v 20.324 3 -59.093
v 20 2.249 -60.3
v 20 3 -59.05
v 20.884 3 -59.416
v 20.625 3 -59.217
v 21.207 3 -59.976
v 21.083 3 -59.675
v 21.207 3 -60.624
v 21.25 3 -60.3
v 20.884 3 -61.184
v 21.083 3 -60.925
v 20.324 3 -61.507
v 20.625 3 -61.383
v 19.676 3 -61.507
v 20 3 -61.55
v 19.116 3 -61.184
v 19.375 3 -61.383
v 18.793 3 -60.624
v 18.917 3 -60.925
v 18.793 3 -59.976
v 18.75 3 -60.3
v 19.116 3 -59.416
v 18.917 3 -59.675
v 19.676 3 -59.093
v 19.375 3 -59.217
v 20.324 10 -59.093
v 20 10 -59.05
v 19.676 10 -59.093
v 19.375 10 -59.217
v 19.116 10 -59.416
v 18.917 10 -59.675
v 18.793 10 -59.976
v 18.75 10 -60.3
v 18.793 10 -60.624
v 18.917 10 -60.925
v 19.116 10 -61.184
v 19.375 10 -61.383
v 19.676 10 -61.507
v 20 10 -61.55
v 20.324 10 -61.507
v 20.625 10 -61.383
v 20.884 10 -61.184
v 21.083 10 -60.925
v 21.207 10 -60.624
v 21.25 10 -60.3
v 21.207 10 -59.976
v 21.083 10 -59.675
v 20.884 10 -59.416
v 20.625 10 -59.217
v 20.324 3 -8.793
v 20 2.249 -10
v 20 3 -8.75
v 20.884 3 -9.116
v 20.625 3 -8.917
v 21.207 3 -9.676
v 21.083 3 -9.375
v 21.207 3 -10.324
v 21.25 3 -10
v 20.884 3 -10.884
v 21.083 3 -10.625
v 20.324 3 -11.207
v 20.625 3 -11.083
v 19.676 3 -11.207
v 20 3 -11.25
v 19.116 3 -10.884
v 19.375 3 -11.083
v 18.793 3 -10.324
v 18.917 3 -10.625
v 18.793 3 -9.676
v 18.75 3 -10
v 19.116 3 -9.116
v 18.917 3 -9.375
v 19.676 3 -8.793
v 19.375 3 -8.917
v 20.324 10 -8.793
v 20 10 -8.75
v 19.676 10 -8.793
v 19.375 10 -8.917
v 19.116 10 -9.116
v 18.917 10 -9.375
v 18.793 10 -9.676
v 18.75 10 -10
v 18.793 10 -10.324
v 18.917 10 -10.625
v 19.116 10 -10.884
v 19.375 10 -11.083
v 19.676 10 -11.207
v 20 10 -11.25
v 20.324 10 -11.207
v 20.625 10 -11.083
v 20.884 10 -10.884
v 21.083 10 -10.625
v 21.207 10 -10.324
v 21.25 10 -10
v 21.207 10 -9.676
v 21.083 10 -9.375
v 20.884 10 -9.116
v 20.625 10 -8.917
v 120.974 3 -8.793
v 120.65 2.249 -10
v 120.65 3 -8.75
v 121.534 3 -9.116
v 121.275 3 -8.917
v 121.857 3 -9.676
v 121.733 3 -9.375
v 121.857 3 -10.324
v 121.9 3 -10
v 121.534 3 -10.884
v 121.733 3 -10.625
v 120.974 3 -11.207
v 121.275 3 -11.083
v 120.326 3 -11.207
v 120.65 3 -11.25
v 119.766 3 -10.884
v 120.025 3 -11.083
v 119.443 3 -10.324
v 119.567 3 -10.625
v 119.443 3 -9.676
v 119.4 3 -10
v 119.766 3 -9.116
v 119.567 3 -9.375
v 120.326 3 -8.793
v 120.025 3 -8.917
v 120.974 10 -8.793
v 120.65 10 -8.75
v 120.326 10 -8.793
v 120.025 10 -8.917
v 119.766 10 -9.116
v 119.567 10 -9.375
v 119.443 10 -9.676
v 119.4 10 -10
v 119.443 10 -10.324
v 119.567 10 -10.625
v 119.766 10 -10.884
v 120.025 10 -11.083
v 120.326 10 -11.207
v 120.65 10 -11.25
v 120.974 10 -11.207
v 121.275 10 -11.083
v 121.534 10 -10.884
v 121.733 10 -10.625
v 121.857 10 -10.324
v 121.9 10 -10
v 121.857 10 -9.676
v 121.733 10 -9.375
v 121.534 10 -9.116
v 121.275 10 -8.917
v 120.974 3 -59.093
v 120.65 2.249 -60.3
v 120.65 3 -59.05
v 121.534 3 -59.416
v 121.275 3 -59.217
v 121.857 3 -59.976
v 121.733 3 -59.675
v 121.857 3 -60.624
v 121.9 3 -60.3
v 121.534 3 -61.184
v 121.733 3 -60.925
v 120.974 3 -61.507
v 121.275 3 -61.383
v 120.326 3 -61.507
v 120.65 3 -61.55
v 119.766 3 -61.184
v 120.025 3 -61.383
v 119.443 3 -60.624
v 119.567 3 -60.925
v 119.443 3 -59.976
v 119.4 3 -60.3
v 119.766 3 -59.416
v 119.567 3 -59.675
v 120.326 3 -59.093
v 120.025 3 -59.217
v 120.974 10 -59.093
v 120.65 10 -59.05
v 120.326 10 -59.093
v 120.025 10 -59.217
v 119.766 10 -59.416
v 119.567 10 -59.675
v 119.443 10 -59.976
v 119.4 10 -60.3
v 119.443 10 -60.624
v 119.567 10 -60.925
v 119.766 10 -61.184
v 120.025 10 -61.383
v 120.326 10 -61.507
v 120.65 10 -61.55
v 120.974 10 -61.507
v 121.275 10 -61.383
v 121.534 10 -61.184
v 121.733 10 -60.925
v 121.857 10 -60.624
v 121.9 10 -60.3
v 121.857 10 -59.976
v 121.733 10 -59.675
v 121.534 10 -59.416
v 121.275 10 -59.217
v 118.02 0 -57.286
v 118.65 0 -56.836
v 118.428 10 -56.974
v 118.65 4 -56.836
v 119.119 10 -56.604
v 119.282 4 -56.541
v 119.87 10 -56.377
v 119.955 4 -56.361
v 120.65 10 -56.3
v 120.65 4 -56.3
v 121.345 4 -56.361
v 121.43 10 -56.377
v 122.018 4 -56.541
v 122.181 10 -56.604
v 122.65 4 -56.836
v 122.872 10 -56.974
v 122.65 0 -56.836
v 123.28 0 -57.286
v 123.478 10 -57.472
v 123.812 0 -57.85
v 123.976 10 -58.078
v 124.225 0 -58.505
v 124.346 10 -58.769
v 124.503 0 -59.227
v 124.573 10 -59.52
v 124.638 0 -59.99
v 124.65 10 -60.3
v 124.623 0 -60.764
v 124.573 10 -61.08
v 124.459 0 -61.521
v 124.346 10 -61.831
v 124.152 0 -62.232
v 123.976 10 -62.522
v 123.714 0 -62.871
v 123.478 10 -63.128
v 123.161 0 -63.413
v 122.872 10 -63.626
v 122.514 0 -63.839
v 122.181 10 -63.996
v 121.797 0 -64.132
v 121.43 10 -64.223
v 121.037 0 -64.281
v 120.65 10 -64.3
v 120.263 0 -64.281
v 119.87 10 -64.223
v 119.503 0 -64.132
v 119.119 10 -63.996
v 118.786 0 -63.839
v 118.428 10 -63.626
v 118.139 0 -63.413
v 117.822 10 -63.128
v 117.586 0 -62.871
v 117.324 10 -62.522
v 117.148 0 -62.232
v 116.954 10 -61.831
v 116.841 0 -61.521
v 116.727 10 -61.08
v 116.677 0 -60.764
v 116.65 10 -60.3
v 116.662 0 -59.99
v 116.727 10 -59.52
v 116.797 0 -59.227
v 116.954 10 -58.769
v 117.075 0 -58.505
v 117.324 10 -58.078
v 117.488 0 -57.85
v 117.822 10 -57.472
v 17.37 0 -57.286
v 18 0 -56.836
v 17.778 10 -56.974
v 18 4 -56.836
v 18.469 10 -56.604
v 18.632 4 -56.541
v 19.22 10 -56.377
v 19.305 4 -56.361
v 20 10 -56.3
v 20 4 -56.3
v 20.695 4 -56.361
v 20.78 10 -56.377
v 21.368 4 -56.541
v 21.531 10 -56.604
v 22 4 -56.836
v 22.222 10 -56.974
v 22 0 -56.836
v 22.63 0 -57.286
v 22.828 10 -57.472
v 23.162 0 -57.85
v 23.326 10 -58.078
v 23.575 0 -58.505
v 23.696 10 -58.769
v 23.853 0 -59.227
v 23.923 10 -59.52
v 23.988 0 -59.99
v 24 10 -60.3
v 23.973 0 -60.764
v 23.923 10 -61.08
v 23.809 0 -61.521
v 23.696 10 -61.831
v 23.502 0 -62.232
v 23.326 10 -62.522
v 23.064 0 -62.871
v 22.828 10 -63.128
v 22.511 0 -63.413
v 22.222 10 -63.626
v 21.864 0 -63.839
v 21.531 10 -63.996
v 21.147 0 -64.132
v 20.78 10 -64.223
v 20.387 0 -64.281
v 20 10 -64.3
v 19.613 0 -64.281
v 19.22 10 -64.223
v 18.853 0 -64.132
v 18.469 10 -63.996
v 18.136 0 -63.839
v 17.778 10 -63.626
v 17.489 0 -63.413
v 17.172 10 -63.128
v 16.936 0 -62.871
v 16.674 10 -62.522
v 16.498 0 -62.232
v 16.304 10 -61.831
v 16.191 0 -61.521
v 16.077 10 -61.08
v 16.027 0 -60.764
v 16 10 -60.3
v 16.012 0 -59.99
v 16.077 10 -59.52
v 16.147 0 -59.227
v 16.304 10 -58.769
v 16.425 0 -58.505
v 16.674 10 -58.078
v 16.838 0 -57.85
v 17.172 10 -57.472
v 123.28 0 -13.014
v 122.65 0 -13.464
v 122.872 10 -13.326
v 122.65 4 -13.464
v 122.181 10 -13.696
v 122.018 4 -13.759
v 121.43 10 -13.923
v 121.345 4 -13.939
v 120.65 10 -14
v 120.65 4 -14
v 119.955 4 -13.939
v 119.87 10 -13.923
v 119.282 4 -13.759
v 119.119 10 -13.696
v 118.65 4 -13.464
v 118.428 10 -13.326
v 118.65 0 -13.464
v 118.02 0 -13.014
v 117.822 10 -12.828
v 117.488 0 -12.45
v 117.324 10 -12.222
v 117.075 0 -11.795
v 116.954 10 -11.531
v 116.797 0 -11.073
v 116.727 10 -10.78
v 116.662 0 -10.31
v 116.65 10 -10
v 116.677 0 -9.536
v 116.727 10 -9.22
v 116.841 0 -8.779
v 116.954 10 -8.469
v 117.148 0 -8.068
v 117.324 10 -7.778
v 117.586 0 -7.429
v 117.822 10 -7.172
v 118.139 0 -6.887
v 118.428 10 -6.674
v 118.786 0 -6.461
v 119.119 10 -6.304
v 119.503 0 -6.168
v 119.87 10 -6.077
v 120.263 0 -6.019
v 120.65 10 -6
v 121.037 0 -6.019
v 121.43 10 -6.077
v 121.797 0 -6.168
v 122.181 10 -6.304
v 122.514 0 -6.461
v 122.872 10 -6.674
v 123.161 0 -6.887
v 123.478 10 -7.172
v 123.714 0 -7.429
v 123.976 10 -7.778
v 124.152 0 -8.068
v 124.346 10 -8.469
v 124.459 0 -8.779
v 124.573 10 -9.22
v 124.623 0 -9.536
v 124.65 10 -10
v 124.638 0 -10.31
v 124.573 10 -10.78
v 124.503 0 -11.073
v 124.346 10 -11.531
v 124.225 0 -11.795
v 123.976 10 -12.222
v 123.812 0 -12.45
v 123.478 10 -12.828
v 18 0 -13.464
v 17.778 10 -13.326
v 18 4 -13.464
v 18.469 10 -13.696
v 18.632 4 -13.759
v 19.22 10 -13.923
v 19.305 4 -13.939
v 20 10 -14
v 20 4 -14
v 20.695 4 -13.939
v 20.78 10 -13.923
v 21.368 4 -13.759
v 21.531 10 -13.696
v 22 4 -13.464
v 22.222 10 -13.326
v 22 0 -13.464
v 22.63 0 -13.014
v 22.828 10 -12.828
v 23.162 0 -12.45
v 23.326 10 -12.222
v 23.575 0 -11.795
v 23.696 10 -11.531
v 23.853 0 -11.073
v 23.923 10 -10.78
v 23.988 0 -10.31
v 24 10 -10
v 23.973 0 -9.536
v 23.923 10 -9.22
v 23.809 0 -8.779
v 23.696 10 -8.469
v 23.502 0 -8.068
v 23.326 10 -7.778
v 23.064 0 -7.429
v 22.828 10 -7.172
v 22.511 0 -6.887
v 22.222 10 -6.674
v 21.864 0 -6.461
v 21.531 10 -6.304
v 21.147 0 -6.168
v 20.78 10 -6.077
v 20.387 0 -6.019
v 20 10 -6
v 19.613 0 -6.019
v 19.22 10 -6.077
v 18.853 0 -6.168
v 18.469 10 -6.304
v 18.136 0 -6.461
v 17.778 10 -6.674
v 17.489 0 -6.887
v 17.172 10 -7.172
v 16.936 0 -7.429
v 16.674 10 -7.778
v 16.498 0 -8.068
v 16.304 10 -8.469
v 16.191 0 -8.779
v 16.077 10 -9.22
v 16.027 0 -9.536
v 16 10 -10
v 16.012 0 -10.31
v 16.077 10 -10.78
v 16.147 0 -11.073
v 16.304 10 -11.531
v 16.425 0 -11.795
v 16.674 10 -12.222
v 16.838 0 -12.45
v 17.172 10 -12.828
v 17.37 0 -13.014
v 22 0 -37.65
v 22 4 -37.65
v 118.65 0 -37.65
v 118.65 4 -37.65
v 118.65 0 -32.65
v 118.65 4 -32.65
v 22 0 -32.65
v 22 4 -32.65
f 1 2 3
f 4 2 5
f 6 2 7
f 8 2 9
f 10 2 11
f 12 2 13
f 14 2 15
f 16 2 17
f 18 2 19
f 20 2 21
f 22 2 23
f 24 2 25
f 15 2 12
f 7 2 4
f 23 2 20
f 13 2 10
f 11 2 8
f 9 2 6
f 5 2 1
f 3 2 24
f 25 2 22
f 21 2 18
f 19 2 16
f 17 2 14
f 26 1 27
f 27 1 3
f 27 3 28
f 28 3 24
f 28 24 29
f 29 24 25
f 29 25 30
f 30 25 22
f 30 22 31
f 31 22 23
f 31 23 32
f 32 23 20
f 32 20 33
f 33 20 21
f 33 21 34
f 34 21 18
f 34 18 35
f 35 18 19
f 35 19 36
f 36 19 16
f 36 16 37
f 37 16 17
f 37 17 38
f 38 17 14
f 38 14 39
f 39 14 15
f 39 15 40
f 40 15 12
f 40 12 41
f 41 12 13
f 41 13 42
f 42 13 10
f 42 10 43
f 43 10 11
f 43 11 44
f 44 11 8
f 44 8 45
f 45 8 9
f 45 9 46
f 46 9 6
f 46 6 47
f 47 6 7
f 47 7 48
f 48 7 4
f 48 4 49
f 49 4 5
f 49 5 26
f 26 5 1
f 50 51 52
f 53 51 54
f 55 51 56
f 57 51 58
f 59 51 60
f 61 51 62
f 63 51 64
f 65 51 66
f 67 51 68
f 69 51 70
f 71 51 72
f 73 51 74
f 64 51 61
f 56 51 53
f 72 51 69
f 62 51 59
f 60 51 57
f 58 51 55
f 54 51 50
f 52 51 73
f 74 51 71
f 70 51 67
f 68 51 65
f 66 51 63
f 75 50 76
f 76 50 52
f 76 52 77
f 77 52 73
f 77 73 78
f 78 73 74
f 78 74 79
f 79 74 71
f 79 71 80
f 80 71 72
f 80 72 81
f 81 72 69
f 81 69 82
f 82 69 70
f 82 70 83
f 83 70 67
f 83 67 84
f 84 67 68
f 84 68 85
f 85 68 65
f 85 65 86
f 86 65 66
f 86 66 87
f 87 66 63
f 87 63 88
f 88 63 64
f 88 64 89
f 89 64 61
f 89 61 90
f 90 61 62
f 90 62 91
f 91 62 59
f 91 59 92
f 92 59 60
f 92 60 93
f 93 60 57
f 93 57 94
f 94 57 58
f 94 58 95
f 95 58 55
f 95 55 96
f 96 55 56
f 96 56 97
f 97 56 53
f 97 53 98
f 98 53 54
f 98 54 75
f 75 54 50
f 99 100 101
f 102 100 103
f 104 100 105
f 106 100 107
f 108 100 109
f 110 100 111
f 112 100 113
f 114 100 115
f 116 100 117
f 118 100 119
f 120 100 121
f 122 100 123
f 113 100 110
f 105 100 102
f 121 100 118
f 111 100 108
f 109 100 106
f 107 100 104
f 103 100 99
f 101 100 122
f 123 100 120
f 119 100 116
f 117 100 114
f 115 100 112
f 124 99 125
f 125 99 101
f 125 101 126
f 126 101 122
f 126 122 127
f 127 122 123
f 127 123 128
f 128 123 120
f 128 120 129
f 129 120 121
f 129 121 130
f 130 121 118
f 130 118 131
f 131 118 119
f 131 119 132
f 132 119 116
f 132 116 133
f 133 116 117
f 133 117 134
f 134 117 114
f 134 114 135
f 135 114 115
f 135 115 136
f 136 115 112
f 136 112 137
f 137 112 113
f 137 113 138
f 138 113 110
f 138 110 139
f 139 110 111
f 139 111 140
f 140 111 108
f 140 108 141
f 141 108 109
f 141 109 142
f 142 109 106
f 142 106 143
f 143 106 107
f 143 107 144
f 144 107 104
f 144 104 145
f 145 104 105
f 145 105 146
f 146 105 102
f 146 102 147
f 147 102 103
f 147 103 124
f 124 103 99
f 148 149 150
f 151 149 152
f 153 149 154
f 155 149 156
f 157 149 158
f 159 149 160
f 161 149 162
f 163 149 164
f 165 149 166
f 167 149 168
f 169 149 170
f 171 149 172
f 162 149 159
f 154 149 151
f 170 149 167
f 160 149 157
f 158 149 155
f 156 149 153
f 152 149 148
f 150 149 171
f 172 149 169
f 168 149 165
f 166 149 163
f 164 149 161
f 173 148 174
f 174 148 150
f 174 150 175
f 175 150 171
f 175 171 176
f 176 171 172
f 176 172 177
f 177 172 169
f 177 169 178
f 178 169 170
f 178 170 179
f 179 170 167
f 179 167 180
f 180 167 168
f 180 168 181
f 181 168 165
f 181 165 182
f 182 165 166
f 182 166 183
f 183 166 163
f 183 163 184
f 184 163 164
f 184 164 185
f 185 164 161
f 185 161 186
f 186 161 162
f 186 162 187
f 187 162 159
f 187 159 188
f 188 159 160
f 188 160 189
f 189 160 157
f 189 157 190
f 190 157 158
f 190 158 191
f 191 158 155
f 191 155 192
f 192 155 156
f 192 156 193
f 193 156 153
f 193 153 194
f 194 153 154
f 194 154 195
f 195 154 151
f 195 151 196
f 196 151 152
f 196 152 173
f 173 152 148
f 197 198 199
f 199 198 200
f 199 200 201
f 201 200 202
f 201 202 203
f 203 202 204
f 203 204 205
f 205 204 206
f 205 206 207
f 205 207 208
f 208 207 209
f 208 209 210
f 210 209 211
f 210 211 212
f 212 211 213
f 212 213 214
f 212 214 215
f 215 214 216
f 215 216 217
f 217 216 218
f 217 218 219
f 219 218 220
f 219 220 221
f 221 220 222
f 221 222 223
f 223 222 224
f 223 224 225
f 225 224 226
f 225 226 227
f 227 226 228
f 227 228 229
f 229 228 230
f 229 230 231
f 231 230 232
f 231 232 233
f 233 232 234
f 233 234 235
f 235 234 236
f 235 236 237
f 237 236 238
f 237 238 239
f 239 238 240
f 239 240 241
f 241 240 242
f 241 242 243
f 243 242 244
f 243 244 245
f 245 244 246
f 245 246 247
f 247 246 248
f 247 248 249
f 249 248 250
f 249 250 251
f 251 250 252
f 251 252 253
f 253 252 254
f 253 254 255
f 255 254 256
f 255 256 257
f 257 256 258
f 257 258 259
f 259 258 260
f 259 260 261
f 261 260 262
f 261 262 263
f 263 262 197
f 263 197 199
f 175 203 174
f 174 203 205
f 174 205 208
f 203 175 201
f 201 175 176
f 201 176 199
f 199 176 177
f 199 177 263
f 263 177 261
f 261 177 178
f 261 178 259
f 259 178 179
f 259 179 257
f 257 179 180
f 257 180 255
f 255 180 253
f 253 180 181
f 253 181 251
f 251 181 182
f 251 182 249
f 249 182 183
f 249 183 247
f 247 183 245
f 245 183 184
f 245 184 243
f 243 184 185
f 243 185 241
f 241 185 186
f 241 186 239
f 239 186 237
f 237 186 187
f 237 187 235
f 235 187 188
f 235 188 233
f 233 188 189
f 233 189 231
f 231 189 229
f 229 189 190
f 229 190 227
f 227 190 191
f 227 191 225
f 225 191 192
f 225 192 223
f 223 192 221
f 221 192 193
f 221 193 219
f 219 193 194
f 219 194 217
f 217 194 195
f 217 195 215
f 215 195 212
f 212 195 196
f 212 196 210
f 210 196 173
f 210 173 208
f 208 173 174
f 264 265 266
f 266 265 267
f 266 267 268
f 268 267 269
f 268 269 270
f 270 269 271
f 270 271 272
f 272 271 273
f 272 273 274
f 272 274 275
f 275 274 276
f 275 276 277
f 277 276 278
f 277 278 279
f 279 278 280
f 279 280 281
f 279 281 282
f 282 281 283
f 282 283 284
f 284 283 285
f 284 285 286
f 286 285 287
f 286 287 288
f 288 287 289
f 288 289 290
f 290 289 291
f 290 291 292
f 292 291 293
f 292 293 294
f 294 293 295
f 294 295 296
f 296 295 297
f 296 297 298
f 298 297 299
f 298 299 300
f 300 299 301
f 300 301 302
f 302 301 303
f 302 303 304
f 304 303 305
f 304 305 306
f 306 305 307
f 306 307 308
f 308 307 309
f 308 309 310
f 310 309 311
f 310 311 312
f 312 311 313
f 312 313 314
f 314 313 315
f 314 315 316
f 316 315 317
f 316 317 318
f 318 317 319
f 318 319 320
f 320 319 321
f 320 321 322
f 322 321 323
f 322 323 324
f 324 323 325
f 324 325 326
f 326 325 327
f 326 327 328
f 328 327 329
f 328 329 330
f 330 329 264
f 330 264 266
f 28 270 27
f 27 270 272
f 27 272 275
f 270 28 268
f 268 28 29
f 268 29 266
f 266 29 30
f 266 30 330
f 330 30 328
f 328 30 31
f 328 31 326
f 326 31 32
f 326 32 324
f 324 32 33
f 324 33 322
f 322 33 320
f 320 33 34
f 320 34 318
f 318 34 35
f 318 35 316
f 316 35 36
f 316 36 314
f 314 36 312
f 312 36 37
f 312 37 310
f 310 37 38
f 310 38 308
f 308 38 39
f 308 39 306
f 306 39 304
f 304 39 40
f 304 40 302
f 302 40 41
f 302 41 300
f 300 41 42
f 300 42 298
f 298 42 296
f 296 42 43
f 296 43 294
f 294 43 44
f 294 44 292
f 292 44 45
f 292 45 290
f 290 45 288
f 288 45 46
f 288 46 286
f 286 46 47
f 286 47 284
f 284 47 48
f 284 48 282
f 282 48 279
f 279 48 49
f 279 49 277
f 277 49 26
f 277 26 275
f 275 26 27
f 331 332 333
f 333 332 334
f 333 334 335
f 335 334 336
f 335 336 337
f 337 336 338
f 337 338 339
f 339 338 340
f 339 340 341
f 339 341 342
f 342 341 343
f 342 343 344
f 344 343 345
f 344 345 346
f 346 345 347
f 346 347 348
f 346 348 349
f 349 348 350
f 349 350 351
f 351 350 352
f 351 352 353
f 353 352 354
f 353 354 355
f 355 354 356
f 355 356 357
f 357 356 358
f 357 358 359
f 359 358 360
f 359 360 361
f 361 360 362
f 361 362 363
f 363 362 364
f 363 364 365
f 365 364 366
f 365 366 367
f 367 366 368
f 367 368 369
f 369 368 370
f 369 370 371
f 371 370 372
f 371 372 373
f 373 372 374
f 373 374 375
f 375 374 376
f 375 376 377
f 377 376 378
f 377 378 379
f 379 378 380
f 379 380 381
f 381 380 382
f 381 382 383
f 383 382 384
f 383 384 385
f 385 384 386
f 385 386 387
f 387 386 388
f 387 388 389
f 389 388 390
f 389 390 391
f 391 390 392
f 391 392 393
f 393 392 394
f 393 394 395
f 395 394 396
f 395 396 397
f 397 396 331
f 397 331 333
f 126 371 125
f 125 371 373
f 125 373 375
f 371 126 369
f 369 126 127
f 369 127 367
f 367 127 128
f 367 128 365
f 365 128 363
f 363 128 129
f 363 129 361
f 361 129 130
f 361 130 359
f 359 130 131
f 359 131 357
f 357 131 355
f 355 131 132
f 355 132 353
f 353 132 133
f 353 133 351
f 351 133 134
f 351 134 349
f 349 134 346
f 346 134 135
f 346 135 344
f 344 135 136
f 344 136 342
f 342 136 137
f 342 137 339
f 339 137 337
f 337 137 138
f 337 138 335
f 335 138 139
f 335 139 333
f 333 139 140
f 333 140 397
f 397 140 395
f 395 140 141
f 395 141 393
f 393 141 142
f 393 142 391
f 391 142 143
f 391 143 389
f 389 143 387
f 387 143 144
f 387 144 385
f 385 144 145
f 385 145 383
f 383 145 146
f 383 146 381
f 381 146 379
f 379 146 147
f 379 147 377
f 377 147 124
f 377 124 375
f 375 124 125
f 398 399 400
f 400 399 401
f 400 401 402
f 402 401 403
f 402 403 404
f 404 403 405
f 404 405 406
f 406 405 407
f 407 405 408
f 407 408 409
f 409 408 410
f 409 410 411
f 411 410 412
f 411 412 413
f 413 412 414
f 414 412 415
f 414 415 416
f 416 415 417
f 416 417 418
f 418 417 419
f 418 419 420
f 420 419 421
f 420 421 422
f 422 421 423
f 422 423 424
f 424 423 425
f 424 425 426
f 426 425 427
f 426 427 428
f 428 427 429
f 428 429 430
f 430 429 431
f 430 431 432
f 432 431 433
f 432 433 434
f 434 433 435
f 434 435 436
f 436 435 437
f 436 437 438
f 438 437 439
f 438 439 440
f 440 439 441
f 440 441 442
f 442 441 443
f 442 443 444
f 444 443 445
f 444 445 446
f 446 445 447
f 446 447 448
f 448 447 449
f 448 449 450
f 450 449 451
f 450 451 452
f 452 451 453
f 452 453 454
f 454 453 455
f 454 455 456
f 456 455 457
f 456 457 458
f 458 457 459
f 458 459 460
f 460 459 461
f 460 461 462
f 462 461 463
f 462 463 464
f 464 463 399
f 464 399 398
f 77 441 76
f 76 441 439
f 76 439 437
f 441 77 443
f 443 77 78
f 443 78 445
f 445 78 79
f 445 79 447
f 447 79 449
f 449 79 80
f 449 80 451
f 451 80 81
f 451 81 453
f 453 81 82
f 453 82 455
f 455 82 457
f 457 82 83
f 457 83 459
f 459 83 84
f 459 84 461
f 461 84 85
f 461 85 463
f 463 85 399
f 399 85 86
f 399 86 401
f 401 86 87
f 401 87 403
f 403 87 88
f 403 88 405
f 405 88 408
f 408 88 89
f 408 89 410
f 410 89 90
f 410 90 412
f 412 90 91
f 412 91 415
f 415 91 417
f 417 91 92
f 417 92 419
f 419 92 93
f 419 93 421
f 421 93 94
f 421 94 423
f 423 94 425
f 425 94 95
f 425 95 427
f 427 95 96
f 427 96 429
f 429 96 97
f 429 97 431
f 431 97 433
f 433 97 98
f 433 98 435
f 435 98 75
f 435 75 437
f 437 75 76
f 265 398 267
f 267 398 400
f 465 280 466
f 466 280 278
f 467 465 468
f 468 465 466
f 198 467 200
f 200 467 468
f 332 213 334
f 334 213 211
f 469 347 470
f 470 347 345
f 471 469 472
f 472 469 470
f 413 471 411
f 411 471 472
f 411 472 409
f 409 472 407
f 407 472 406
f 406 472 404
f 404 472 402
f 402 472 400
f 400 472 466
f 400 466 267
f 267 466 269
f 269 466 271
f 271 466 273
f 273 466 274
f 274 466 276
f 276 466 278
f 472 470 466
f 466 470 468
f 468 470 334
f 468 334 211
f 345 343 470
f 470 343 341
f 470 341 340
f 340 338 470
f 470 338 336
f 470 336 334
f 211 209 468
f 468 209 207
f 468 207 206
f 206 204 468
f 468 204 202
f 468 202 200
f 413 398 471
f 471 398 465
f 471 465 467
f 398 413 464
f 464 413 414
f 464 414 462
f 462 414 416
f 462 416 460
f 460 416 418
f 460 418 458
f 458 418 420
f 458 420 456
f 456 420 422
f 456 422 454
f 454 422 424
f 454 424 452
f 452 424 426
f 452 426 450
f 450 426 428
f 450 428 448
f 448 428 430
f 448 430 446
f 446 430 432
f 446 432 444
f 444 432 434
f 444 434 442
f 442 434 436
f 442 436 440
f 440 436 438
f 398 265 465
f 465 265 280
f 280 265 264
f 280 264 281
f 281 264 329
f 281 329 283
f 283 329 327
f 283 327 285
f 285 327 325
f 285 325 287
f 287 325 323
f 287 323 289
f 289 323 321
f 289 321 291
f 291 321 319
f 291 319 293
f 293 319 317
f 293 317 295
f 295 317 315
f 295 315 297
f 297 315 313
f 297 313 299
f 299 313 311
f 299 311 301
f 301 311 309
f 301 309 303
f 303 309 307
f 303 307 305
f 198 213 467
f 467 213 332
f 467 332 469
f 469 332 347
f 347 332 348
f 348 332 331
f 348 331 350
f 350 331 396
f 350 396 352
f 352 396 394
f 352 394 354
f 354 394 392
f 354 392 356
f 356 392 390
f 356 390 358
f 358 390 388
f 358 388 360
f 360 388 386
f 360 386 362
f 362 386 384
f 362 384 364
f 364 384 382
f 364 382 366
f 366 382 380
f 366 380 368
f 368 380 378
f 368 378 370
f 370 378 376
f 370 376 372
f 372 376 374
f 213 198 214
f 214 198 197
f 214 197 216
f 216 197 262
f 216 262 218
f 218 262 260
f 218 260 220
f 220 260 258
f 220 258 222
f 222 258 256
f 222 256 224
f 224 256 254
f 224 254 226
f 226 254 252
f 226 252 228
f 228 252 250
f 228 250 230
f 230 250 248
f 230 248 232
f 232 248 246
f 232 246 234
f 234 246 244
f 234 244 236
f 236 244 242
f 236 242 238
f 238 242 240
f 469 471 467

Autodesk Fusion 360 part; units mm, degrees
sketch "Schizzo7" plane through (0, 0, 0) normal (0, 1, 0) x (1, 0, 0)
  line L0 (20, 10) -> (120.65, 10)
  line L1 (120.65, 10) -> (120.65, 60.3)
  line L2 (120.65, 60.3) -> (20, 60.3)
  line L3 (20, 60.3) -> (20, 10)
  circle A0 centre (120.65, 60.3) radius 4
  circle A1 centre (20, 60.3) radius 4
  circle A2 centre (20, 10) radius 4
  circle A3 centre (120.65, 10) radius 4
  line L4 (20, 60.3) -> (18, 60.3)
  line L5 (18, 60.3) -> (20, 60.3)
  line L6 (20, 60.3) -> (22, 60.3)
  line L7 (22, 60.3) -> (22, 10)
  line L8 (18, 60.3) -> (18, 10)
  line L9 (120.65, 60.3) -> (122.65, 60.3)
  line L10 (120.65, 60.3) -> (118.65, 60.3)
  line L11 (118.65, 60.3) -> (118.65, 10)
  line L12 (122.65, 60.3) -> (122.65, 10)
  line L13 (122.65, 10) -> (120.65, 10)
  line L14 (20, 35.15) -> (120.65, 35.15)
  line L15 (22, 35.15) -> (22, 37.65)
  line L16 (22, 35.15) -> (22, 32.65)
  line L17 (22, 37.65) -> (118.65, 37.65)
  line L18 (22, 32.65) -> (118.65, 32.65)
  dimension "d45" = 100.65
  dimension "d46" = 50.3
  dimension "d47" = 8
  dimension "d48" = 8
  dimension "d49" = 8
  dimension "d50" = 8
  dimension "d51" = 2
  dimension "d52" = 2
  dimension "d53" = 2.5
  dimension "d54" = 2.5
extrude "Estrusione12" add sketch "Schizzo7" along normal blind 4 contours L3 A1 A2 L8 | L3 A2 L7 L14 L16 | L3 A1 L7 L14 L15 | L7 L11 L14 L16 L18 | L7 L11 L14 L15 L17 | L1 A3 L11 L14 | L1 A0 L11 L14 | L1 A0 A3 L12
extrude "Estrusione13" add sketch "Schizzo7" along normal blind 10 contours L0 L3 A2 L7 | L0 L3 A2 | L0 A2 L7 | L0 A3 L11 | L0 A3 L12 L13 | L3 A1 L4 L5 L8 | L2 L3 A1 L6 L7 | L2 A1 L4 L5 L6 L8 | L0 L1 A3 L11 | L2 A1 L7 | L1 A3 L12 L13 | L2 A0 L9 L10 L12 | L2 A0 L11 | L1 A0 L9 L12 | L1 L2 A0 L10 L11
hole "Foratura1" at (120.65, 10, -60.3) direction (0, -1, 0) diameter 2.5 depth 7 tip angle 118
hole "Foratura2" at (120.65, 10, -10) direction (0, -1, 0) diameter 2.5 depth 7 tip angle 118
hole "Foratura3" at (20, 10, -10) direction (0, -1, 0) diameter 2.5 depth 7 tip angle 118
hole "Foratura4" at (20, 10, -60.3) direction (0, -1, 0) diameter 2.5 depth 7 tip angle 118
